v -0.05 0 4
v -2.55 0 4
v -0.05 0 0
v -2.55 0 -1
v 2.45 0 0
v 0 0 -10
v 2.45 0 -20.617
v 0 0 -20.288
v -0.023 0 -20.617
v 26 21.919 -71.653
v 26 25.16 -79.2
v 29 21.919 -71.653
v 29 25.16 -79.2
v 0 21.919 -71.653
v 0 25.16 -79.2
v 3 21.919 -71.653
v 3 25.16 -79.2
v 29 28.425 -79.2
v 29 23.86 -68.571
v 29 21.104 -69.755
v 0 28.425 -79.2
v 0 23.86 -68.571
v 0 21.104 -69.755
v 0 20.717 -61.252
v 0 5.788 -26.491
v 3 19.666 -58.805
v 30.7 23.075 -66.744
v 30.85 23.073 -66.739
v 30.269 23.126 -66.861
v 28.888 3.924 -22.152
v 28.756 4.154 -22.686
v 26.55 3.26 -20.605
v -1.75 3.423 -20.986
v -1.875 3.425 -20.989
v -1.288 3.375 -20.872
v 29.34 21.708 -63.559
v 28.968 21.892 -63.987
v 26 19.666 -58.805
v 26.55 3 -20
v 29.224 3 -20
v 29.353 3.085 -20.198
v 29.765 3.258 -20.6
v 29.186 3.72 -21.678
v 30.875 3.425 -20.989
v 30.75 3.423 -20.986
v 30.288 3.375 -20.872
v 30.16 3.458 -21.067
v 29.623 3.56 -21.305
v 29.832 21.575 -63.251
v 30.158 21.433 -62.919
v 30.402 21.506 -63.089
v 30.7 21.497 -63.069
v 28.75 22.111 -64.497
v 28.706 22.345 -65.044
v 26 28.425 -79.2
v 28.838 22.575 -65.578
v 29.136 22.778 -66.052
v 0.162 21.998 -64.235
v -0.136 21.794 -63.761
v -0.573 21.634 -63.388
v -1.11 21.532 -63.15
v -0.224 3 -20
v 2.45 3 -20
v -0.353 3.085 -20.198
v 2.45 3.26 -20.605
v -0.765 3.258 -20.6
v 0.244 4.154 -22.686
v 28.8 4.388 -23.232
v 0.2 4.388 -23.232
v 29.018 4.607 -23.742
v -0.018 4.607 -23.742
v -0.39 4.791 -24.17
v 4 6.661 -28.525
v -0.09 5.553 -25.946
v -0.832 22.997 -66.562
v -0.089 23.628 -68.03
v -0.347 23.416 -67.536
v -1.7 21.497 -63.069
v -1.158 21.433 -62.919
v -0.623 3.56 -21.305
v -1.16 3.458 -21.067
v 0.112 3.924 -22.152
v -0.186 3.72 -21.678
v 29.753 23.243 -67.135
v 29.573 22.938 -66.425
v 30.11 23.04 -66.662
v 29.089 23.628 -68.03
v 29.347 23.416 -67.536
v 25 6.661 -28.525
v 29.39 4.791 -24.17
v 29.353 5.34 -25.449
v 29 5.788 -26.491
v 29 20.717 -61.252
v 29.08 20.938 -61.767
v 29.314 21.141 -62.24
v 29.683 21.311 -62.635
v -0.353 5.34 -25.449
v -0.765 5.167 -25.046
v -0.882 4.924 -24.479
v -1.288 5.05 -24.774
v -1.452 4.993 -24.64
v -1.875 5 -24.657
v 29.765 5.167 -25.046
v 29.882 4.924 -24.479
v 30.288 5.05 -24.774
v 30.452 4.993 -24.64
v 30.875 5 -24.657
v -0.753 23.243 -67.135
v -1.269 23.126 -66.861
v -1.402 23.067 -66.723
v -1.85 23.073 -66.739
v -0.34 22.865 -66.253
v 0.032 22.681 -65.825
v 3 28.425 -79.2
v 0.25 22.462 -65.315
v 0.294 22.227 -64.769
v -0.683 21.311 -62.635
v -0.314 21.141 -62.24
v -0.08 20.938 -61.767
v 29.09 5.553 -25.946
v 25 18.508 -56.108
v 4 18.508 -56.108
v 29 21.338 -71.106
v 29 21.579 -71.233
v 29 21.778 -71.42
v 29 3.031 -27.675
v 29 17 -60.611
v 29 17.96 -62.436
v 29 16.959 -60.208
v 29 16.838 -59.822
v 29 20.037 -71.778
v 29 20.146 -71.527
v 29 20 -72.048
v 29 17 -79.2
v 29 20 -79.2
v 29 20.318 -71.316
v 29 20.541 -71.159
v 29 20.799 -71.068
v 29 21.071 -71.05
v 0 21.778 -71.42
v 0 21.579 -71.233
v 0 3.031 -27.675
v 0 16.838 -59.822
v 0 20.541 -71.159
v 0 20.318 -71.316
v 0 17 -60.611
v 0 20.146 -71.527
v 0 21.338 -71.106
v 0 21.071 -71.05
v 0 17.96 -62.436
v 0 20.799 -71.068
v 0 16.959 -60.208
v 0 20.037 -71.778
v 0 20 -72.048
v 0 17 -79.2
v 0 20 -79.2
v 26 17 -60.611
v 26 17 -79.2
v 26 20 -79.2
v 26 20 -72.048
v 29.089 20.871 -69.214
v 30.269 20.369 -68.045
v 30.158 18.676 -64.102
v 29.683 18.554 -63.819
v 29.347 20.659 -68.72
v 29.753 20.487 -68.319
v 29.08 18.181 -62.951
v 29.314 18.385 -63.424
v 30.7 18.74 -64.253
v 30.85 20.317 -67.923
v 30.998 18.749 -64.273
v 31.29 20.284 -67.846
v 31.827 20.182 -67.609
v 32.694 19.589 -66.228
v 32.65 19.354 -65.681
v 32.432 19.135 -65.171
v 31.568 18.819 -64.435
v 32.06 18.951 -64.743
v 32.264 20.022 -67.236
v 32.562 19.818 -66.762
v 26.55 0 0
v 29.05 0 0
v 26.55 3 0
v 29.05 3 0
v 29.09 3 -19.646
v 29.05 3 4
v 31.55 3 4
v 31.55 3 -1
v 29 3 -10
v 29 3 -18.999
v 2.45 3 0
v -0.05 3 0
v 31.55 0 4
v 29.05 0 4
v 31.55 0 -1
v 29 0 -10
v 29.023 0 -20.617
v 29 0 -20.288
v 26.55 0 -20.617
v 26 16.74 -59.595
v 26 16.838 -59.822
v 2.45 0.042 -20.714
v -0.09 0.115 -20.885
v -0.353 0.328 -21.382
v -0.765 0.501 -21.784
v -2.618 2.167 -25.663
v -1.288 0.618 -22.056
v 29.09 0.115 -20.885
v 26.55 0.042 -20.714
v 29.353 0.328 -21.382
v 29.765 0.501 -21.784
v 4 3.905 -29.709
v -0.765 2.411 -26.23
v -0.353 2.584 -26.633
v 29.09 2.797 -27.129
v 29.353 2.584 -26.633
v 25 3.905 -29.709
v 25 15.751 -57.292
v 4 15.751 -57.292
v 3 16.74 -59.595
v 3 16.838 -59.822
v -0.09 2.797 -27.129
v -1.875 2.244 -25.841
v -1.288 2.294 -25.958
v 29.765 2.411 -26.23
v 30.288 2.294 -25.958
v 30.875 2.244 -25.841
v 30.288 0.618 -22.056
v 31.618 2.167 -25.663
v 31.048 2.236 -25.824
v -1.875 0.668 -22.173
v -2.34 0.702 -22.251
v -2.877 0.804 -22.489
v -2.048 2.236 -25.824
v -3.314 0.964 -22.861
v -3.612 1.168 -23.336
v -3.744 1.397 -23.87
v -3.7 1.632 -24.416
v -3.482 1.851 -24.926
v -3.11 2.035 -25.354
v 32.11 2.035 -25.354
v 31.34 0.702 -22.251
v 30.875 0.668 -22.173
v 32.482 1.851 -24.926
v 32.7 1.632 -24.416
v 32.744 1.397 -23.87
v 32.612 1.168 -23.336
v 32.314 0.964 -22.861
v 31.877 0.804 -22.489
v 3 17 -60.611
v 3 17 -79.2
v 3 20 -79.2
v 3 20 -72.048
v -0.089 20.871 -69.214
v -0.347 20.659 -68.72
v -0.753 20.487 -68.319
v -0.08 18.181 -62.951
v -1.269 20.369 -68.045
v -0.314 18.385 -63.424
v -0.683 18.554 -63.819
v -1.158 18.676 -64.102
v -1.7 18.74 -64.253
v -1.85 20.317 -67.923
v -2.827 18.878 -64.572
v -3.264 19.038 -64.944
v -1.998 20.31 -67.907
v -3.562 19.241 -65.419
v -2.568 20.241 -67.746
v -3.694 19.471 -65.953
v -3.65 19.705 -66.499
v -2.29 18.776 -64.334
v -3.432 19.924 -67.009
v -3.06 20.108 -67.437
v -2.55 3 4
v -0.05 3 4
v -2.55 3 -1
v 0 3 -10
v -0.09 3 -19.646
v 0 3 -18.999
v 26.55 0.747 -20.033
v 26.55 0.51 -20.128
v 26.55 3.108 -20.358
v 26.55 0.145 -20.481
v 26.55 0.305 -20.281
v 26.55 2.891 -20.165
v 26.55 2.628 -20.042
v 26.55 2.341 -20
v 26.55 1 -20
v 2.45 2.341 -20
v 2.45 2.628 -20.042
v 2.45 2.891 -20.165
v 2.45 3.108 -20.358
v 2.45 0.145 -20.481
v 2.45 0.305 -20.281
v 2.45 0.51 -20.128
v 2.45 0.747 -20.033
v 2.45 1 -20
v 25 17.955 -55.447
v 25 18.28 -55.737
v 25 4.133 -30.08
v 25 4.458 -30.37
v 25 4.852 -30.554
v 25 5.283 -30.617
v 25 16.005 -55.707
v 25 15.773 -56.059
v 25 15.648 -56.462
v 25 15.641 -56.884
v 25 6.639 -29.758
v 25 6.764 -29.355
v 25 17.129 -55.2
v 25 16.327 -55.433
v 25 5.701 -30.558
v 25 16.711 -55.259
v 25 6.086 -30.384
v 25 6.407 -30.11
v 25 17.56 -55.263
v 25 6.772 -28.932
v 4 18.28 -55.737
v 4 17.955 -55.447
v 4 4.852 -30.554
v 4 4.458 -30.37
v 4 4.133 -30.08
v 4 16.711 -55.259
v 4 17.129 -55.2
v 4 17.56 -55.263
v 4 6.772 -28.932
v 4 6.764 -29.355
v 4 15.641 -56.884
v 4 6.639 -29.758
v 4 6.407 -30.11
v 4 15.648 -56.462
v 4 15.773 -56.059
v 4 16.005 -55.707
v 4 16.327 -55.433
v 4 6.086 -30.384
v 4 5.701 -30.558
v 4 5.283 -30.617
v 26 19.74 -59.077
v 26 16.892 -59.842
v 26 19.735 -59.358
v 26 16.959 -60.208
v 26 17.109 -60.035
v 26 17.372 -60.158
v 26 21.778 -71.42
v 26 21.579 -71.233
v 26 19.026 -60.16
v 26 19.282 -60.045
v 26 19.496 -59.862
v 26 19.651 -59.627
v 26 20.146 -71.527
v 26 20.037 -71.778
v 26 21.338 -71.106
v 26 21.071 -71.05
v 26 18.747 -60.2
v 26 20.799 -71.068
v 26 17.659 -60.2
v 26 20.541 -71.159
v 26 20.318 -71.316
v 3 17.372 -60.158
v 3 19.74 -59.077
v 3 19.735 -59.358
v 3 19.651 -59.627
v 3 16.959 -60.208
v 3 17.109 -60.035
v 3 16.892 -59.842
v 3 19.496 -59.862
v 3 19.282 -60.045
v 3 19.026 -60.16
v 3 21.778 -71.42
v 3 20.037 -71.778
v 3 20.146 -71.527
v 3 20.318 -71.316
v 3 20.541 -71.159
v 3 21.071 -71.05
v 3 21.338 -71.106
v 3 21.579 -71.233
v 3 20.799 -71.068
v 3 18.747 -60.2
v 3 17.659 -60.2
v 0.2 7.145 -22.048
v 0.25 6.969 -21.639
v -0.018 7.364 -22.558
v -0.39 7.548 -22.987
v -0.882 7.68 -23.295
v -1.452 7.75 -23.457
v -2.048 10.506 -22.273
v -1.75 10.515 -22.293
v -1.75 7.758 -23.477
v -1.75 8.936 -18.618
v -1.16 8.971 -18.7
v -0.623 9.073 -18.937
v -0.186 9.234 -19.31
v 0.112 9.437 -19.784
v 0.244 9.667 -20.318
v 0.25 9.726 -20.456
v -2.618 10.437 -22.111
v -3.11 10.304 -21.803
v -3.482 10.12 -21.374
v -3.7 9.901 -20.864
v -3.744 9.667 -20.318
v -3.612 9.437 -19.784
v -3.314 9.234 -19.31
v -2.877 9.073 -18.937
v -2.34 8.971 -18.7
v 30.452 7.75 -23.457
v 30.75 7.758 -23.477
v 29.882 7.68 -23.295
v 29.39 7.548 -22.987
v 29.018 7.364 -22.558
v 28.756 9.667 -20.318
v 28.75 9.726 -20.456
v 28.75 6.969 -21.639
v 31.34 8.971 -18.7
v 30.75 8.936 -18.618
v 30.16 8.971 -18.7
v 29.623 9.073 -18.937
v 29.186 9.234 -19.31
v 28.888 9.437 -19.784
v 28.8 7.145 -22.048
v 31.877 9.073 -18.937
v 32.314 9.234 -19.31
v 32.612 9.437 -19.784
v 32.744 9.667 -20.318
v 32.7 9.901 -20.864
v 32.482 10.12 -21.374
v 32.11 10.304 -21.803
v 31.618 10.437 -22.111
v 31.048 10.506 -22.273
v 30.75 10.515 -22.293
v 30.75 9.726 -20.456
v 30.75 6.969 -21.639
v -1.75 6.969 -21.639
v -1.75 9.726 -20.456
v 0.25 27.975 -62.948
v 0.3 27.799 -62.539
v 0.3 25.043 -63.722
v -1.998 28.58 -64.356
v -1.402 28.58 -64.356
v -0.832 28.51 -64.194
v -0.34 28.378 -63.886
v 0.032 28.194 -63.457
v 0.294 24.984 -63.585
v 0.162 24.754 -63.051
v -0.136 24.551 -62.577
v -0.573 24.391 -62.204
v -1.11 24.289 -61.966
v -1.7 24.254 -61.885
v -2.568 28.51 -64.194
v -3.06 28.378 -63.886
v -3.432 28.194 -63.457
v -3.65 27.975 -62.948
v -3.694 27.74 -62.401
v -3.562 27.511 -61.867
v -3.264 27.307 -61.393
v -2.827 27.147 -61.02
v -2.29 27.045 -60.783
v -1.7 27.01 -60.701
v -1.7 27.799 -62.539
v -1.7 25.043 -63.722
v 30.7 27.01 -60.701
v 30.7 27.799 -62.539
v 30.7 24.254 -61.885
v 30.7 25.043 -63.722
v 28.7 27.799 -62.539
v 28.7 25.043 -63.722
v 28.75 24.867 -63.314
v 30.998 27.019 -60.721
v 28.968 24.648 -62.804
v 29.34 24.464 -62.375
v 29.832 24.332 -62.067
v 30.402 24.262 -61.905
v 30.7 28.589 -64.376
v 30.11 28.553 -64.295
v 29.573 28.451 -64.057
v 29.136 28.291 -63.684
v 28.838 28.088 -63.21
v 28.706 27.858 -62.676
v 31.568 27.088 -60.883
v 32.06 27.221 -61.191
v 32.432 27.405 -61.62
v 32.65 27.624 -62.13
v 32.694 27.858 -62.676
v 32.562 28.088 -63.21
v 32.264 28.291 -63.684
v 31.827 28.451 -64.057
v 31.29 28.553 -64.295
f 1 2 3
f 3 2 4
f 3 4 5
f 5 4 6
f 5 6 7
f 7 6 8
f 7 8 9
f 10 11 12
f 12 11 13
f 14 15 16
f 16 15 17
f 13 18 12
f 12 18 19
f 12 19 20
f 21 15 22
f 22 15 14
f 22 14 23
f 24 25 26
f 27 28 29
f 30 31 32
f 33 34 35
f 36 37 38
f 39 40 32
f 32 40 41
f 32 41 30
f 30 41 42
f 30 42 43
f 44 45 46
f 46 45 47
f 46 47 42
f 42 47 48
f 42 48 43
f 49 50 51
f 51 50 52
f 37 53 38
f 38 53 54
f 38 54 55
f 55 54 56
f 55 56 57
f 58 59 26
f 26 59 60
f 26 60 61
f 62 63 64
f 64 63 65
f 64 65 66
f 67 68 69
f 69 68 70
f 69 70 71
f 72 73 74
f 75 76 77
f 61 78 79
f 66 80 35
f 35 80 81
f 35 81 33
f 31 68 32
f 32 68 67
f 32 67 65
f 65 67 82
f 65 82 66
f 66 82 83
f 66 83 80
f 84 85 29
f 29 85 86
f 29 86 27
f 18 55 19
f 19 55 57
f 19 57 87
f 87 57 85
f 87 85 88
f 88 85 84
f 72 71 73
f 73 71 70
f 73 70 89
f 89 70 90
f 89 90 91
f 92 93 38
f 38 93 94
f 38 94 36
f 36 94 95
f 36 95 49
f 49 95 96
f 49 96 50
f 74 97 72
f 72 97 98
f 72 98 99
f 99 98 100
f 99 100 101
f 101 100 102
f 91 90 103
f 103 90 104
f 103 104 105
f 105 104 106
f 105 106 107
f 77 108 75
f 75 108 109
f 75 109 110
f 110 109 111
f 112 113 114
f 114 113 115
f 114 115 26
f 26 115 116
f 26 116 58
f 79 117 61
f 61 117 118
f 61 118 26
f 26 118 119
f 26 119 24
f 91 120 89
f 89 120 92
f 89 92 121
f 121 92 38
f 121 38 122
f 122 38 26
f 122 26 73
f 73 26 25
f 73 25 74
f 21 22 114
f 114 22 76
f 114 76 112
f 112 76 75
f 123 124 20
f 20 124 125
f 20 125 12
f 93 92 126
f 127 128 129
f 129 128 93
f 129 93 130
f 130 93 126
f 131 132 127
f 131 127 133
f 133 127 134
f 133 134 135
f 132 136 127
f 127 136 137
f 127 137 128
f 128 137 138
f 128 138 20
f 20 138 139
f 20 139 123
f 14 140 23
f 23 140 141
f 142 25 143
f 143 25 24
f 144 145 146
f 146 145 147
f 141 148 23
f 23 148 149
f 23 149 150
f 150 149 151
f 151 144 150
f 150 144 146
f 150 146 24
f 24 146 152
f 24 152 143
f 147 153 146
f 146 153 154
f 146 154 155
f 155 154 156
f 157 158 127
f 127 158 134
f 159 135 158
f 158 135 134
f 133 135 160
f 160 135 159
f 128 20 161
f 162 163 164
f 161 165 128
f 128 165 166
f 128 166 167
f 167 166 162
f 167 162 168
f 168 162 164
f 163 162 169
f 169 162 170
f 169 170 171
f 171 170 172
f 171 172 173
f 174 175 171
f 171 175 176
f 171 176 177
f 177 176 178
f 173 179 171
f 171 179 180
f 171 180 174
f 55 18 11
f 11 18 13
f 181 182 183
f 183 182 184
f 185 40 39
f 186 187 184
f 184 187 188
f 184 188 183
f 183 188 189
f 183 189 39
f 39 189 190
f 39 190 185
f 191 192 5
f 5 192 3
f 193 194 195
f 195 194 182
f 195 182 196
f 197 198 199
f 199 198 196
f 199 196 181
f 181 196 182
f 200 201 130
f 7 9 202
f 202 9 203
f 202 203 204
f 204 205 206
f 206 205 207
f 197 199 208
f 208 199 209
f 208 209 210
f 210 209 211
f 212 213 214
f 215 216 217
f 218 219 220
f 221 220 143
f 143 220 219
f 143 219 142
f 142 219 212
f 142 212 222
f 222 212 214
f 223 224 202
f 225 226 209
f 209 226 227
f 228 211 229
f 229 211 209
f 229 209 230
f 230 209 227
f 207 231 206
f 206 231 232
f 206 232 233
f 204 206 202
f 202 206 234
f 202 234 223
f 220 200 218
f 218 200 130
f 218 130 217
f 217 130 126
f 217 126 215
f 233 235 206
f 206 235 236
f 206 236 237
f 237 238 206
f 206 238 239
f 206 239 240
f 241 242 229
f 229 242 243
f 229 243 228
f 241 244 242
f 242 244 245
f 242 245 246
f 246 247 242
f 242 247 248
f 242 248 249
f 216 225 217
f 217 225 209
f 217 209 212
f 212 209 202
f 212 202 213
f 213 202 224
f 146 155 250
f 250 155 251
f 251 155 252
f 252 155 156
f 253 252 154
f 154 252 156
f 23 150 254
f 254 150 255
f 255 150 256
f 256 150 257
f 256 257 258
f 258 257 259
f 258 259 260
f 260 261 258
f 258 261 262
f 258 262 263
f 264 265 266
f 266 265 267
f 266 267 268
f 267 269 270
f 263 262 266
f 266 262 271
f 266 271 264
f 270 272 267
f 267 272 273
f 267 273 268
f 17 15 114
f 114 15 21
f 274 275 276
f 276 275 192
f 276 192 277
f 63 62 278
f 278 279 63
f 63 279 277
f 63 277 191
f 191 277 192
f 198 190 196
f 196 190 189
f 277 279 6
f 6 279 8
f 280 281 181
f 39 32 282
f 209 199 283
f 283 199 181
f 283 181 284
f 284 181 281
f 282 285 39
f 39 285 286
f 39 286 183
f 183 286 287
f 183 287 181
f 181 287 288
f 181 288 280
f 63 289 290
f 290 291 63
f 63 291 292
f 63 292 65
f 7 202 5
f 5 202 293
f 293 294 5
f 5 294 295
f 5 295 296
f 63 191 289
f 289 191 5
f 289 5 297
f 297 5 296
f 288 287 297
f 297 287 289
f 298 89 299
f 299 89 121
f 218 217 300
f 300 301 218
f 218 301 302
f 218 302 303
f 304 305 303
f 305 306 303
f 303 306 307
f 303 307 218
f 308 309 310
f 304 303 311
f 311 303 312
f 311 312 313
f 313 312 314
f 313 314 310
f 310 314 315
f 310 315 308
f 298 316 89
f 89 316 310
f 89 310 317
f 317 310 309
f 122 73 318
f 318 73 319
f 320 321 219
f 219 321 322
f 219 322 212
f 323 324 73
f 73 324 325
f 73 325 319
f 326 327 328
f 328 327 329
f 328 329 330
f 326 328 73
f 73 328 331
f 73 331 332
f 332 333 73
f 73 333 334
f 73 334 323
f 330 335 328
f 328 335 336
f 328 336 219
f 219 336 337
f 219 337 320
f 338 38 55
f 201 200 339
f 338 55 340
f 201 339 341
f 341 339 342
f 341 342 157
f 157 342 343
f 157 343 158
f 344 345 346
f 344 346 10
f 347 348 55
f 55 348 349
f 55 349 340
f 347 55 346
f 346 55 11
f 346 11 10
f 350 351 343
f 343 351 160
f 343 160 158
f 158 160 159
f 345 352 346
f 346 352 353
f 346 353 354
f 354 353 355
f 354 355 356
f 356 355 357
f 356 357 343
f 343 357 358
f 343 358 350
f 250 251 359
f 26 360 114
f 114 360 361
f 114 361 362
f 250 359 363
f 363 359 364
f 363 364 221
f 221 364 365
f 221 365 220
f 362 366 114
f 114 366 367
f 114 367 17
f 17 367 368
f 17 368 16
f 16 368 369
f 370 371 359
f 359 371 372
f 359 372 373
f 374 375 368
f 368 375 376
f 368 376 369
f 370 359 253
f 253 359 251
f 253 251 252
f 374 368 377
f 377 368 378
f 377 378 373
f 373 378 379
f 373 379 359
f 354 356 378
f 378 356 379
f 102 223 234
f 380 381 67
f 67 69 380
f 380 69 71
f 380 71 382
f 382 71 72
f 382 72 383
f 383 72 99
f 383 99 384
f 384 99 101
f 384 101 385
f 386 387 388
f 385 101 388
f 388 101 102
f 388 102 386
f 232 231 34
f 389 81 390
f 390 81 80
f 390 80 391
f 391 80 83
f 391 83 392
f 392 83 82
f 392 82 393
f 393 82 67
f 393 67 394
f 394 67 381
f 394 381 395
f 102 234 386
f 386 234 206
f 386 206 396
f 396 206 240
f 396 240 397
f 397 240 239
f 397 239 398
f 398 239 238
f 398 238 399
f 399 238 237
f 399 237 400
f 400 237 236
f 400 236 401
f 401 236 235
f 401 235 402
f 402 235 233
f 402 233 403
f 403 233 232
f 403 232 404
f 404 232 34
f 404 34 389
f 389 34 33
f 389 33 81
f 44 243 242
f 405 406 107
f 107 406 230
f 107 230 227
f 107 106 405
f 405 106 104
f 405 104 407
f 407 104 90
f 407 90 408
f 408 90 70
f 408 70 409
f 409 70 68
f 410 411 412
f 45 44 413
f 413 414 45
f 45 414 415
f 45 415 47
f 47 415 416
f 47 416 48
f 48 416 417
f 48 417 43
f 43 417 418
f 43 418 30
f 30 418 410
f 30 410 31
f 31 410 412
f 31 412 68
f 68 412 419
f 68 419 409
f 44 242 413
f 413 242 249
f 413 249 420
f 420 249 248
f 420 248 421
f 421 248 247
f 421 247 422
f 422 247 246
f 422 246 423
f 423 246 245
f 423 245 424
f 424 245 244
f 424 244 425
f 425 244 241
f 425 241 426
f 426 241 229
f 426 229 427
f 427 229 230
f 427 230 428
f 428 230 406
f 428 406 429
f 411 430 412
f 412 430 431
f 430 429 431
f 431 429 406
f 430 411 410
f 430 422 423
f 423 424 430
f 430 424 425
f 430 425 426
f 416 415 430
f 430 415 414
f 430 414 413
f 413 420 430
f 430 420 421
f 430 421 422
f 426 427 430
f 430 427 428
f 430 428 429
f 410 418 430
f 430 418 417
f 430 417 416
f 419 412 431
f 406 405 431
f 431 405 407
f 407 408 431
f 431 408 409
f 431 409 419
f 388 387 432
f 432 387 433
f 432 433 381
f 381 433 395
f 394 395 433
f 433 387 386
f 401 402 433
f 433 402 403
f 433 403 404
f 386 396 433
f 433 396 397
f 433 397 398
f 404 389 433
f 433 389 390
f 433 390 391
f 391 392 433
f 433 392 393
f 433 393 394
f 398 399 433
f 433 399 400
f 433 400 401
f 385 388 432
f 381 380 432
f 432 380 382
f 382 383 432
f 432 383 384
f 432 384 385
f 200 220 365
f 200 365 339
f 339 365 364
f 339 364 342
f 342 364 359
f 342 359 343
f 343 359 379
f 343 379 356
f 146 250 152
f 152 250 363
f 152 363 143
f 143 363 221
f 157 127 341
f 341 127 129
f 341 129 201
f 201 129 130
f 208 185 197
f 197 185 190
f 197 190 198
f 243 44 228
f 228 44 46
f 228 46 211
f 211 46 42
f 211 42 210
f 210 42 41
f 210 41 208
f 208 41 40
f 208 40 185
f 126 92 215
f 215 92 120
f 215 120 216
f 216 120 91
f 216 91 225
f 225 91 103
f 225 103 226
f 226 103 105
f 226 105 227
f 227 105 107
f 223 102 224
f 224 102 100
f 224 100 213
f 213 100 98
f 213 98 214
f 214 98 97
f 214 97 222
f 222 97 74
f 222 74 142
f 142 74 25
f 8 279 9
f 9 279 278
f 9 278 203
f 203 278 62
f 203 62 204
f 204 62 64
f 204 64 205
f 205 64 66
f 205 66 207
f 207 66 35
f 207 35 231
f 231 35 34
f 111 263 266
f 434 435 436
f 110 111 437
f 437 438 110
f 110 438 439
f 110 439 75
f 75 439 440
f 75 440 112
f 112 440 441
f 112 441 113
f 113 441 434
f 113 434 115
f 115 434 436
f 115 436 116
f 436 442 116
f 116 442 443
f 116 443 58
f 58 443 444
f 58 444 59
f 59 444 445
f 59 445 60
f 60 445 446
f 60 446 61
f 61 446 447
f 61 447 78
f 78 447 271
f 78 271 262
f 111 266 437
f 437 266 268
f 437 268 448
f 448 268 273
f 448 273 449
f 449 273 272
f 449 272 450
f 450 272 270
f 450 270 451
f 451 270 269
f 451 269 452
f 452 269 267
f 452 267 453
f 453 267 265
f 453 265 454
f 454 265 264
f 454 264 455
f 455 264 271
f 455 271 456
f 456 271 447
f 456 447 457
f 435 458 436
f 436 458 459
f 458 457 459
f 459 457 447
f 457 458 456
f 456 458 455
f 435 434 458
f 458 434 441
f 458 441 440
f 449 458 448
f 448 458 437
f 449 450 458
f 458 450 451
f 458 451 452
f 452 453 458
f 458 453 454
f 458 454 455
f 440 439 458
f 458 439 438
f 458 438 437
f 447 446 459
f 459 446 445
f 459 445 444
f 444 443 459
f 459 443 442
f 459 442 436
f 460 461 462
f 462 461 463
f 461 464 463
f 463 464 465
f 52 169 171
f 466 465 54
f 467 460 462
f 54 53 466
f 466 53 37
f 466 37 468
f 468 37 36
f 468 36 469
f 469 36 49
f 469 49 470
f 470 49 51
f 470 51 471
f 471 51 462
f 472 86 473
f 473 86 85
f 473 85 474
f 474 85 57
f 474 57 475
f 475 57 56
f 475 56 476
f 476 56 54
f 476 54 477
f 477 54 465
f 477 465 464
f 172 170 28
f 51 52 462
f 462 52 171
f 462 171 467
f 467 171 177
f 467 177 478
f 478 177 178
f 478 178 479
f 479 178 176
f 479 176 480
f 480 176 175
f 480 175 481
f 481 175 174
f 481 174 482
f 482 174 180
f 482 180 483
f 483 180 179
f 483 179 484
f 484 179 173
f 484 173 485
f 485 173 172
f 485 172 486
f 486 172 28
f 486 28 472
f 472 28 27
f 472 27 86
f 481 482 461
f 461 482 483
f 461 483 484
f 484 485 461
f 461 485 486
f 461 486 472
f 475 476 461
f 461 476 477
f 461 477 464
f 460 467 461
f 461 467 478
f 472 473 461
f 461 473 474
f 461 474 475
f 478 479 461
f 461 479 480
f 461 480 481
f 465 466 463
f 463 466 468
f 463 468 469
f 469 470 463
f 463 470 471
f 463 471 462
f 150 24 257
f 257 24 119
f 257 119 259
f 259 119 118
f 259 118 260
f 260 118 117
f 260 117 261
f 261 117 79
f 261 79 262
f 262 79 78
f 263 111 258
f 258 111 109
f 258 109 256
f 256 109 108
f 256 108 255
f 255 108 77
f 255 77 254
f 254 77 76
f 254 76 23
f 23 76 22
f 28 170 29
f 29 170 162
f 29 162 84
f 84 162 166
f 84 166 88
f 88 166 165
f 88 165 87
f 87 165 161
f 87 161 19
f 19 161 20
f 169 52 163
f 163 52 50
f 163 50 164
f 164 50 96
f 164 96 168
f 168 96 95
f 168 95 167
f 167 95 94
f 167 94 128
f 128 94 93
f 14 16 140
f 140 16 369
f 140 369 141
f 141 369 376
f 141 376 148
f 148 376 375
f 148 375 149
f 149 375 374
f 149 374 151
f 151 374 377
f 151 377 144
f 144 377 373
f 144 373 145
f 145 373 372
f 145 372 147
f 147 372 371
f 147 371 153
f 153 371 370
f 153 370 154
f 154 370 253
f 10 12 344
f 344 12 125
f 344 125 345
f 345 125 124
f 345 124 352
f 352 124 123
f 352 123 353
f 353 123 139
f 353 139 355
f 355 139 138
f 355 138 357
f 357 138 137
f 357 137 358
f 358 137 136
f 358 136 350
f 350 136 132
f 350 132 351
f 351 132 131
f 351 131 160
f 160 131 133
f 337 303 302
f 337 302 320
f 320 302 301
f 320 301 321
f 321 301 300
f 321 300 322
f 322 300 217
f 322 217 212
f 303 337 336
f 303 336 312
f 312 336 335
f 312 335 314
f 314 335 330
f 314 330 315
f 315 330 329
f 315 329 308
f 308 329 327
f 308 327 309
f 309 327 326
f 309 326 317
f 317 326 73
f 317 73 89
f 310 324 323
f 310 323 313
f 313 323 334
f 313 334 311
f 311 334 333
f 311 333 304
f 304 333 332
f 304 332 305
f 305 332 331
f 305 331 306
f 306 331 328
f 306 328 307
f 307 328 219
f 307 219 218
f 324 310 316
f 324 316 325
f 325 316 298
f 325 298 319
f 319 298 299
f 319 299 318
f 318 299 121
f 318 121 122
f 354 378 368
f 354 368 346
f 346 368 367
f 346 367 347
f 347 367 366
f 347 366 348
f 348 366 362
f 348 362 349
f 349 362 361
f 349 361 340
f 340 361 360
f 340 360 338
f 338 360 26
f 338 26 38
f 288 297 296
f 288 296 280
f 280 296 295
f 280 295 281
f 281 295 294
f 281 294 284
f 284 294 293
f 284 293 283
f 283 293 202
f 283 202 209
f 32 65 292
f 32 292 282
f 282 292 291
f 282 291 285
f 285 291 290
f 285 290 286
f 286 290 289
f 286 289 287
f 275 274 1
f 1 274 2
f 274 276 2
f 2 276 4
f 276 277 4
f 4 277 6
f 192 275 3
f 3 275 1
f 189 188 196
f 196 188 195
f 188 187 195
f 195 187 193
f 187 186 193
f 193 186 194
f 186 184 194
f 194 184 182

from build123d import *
from build123d.topology import SkipClean

# Parameters (mm, degrees)
BOSS_EXTRUDE1_DEPTH   = 29
SKETCH2_W             = 24.1
SKETCH2_H             = 40
CUT_EXTRUDE1_DEPTH    = 28
SKETCH3_W             = 21
SKETCH3_H             = 24.583031318
CUT_EXTRUDE2_DEPTH    = 28
SKETCH4_W             = 23
SKETCH4_H             = 38
CUT_EXTRUDE3_DEPTH    = 87.03859599
BOSS_EXTRUDE2_DEPTH   = 6
BOSS_EXTRUDE2_2_DEPTH = 6
SKETCH7_R             = 2
BOSS_EXTRUDE3_DEPTH   = 3
SKETCH8_R             = 2
BOSS_EXTRUDE4_DEPTH   = 3
FILLET5_R             = 1
FILLET1_R             = 2
BOSS_EXTRUDE5_DEPTH   = 6
BOSS_EXTRUDE5_2_DEPTH = 6
SKETCH10_R            = 2
BOSS_EXTRUDE6_DEPTH   = 3
SKETCH11_R            = 2
BOSS_EXTRUDE7_DEPTH   = 3
FILLET2_R             = 2
FILLET3_R             = 1
FILLET4_R             = 1.5
FILLET6_R             = 1
FILLET7_R             = 1
BOSS_EXTRUDE8_DEPTH   = 3


# Some blends are built 0.0001 mm under size
with BuildPart() as part:
    # Sketch1 → Boss-Extrude1 (new body)
    with BuildSketch(Plane(origin=(0, 0, 0), x_dir=(0, 0, -1), z_dir=(1, 0, 0))):
        Polygon((0, 0), (20.616968682, 0), (60.2, 17), (79.2, 17), (79.2, 20), (67.185240821, 20), (79.2, 25.16006226), (79.2, 28.425036095), (20, 3), (0, 3), align=None)
    extrude(amount=BOSS_EXTRUDE1_DEPTH)

    # Sketch2 → Cut-Extrude1 (cut)
    with BuildSketch(Plane(origin=(0, 3, 0), x_dir=(1, 0, 0), z_dir=(0, 1, 0))):
        with Locations((14.5, 0)):
            Rectangle(SKETCH2_W, SKETCH2_H)
    extrude(amount=-CUT_EXTRUDE1_DEPTH, mode=Mode.SUBTRACT)

    # Sketch3 → Cut-Extrude2 (cut)
    with BuildSketch(Plane.XZ):
        with Locations((14.5, -42.908484341)):
            Rectangle(SKETCH3_W, SKETCH3_H)
    extrude(amount=-CUT_EXTRUDE2_DEPTH, mode=Mode.SUBTRACT)

    # Sketch4 → Cut-Extrude3 (cut, through all)
    with BuildSketch(Plane.XZ.offset(-17)):
        with Locations((14.5, -79.2)):
            Rectangle(SKETCH4_W, SKETCH4_H)
    extrude(amount=-CUT_EXTRUDE3_DEPTH, mode=Mode.SUBTRACT)



with BuildPart() as body_2:
    # Sketch6 → Boss-Extrude2 (new body)
    with BuildSketch(Plane(origin=(0, -4.719099202, -2.026744384), x_dir=(1, 0, 0), z_dir=(0, 0.9188435044080576, 0.3946221159630054))):
        with BuildLine():
            Line((-1.75, 22.633400601), (-1.75, 24.633400601))
            ThreePointArc((-1.75, 24.633400601), (-3.164213562, 21.219187039), (0.25, 22.633400601))
            Line((0.25, 22.633400601), (-1.75, 22.633400601))
        make_face()
    extrude(amount=BOSS_EXTRUDE2_DEPTH)


with BuildPart() as body_3:
    # Sketch6 → Boss-Extrude2 2 (new body)
    with BuildSketch(Plane(origin=(0, -4.719099202, -2.026744384), x_dir=(1, 0, 0), z_dir=(0, 0.9188435044080576, 0.3946221159630054))):
        with BuildLine():
            ThreePointArc((28.75, 22.633400601), (32.164213562, 21.219187039), (30.75, 24.633400601))
            Line((30.75, 24.633400601), (30.75, 22.633400601))
            Line((30.75, 22.633400601), (28.75, 22.633400601))
        make_face()
    extrude(amount=BOSS_EXTRUDE2_2_DEPTH)


    with SkipClean():  # the faces are left unmerged after this step: merging them gives an invalid solid
        add(body_2.part)  # Boss-Extrude3 merges body 2
        # Sketch7 → Boss-Extrude3 (add)
        with BuildSketch(Plane(origin=(0, -4.719099202, -2.026744384), x_dir=(1, 0, 0), z_dir=(0, -0.9188435044080577, -0.39462211596300556))):
            with Locations(Location((30.75, -22.633400601, 0), (0, 0, 270))):
                Circle(SKETCH7_R)
            with Locations(Location((-1.75, -22.633400601, 0), (0, 0, 270))):
                Circle(SKETCH7_R)
        extrude(amount=-BOSS_EXTRUDE3_DEPTH)


with BuildPart() as part_1:
    add(part.part)

    add(body_3.part)  # Boss-Extrude4 merges body 3
    # Sketch8 → Boss-Extrude4 (add)
    with BuildSketch(Plane(origin=(0, -4.719099202, -2.026744384), x_dir=(1, 0, 0), z_dir=(0, -0.9188435044080577, -0.39462211596300556))):
        with BuildLine():
            Line((30.75, -20.633400601), (-1.75, -20.633400601))
            ThreePointArc((-1.75, -20.633400601), (-0.335786438, -21.219187039), (0.25, -22.633400601))
            ThreePointArc((0.25, -22.633400601), (-0.335786438, -24.047614164), (-1.75, -24.633400601))
            Line((-1.75, -24.633400601), (30.75, -24.633400601))
            ThreePointArc((30.75, -24.633400601), (28.75, -22.633400601), (30.75, -20.633400601))
        make_face()
        with Locations(Location((30.75, -22.633400601, 0), (0, 0, 270))):
            Circle(SKETCH8_R)
        with Locations(Location((-1.75, -22.633400601, 0), (0, 0, 270))):
            Circle(SKETCH8_R)
    extrude(amount=BOSS_EXTRUDE4_DEPTH)

    # Fillet5
    fillet5_edges = [part_1.edges().sort_by_distance(p)[0] for p in [
        (14.5, 17, -60.2),
    ]]
    fillet(fillet5_edges, radius=FILLET5_R)

    # Fillet1
    # the kernel refuses this fillet: 2 mm, written as the material it adds along each edge
    with BuildSketch(Plane(origin=(0, 17, -60.2), x_dir=(0, -0.39462211596300395, 0.9188435044080584), z_dir=(1, 0, 0)), Plane(origin=(26, 17, -60.2), x_dir=(0, -0.39462211596300395, 0.9188435044080584), z_dir=(1, 0, 0))) as fillet1_piece_1:
        with BuildLine():
            CenterArc((FILLET1_R * 0.205656227335, FILLET1_R), FILLET1_R, 246.757591511, 23.242408489)
            Line((-FILLET1_R * 0.188965888628, FILLET1_R * 0.0811564955919), (0, 0))
            Line((0, 0), (FILLET1_R * 0.205656227335, 0))
        make_face()
    extrude(amount=3)
    with BuildSketch(Plane(origin=(29, 0.666766489, -22.169476849), x_dir=(0.9999978256192742, 0.000822932051561906, -0.0019161261864445022), z_dir=(0, 0.9188435044080576, 0.3946221159630056))) as fillet1_piece_2_section:
        with BuildLine():
            CenterArc((1.995841225, -1.996346258), FILLET1_R, 93.463838868, 86.416678302)
            Line((-0.004154427, -1.992175524), (-0.204153992, -1.99175845))
            Line((-0.204153992, -1.99175845), (-0.199999565, 0.000417073))
            Line((-0.199999565, 0.000417073), (0.000417073, 0.199999565))
            ThreePointArc((0.000417073, 0.199999565), (1.750413268, 0.196350172), (1.862920362, 0.199634626))
            Line((1.862920362, 0.199634626), (1.875004077, 0))
        make_face()
    fillet1_piece_2 = extrude(amount=7.980449639, mode=Mode.PRIVATE)
    fillet1_piece_2 = split(fillet1_piece_2, bisect_by=Plane(origin=(29, 0, -22.169476849), z_dir=(0, 1, 0)), keep=Keep.TOP, mode=Mode.PRIVATE)
    fillet1_piece_2 = split(fillet1_piece_2, bisect_by=Plane(origin=(29, 3, -22.169476849), z_dir=(0, -1, 0)), keep=Keep.TOP, mode=Mode.PRIVATE)
    add(fillet1_piece_2)
    with BuildSketch(Plane(origin=(29, -3.909487311, -24.134872424), x_dir=(0.9999978256192742, 0.000822932051561906, -0.0019161261864445022), z_dir=(0, 0.9188435044080576, 0.3946221159630056))) as fillet1_piece_3_section:
        with BuildLine():
            CenterArc((1.995841225, -1.996346258), FILLET1_R, 93.463838868, 86.416678302)
            Line((-0.004154427, -1.992175524), (-0.204153992, -1.99175845))
            Line((-0.204153992, -1.99175845), (-0.199999565, 0.000417073))
            Line((-0.199999565, 0.000417073), (0.000417073, 0.199999565))
            ThreePointArc((0.000417073, 0.199999565), (1.750413268, 0.196350172), (1.862920362, 0.199634626))
            Line((1.862920362, 0.199634626), (1.875004077, 0))
        make_face()
    fillet1_piece_3 = extrude(amount=7.980449639, mode=Mode.PRIVATE)
    fillet1_piece_3 = split(fillet1_piece_3, bisect_by=Plane(origin=(29, 3, -24.134872424), z_dir=(0, 1, 0)), keep=Keep.TOP, mode=Mode.PRIVATE)
    add(fillet1_piece_3)
    with BuildSketch(Plane(origin=(29, 5.001785466, -24.660984518), x_dir=(0, 0.3946221159630056, -0.9188435044080575), z_dir=(0, -0.9188435044080576, -0.3946221159630056))) as fillet1_piece_4:
        with BuildLine():
            CenterArc((1.992179856, 2), FILLET1_R, 183.583321698, 86.416678302)
            Line((-0.003910072, 1.875), (-0.203519065, 1.8625))
            ThreePointArc((-0.203519065, 1.8625), (-0.2, 1.75), (-0.2, 0))
            Line((-0.2, 0), (0, -0.2))
            Line((0, -0.2), (1.992179856, -0.2))
            Line((1.992179856, -0.2), (1.992179856, 0))
        make_face()
    extrude(amount=3)
    with BuildSketch(Plane(origin=(0, 5.001785466, -24.660984518), x_dir=(0, 0.3946221159630056, -0.9188435044080576), z_dir=(0, -0.9188435044080576, -0.3946221159630056))) as fillet1_piece_5:
        with BuildLine():
            CenterArc((1.992179856, -2), FILLET1_R, 90, 86.416678302)
            Line((-0.003910072, -1.875), (-0.203519065, -1.8625))
            ThreePointArc((-0.203519065, -1.8625), (-0.2, -1.75), (-0.2, 0))
            Line((-0.2, 0), (0, 0.2))
            Line((0, 0.2), (1.992179856, 0.2))
            Line((1.992179856, 0.2), (1.992179856, 0))
        make_face()
    extrude(amount=3)
    with BuildSketch(Plane(origin=(0, 0.666766489, -22.169476849), x_dir=(-0.9999978256192742, 0.0008229320515609999, -0.0019161261864423925), z_dir=(0, 0.9188435044080576, 0.3946221159630056))) as fillet1_piece_6_section:
        with BuildLine():
            CenterArc((1.995841225, 1.996346258), FILLET1_R, 180.119482831, 86.416678302)
            Line((-0.004154427, 1.992175524), (-0.204153992, 1.99175845))
            Line((-0.204153992, 1.99175845), (-0.199999565, -0.000417073))
            Line((-0.199999565, -0.000417073), (0.000417073, -0.199999565))
            ThreePointArc((0.000417073, -0.199999565), (1.750413268, -0.196350172), (1.862920362, -0.199634626))
            Line((1.862920362, -0.199634626), (1.875004077, 0))
        make_face()
    fillet1_piece_6 = extrude(amount=7.980449639, mode=Mode.PRIVATE)
    fillet1_piece_6 = split(fillet1_piece_6, bisect_by=Plane(origin=(0, 0, -22.169476849), z_dir=(0, 1, 0)), keep=Keep.TOP, mode=Mode.PRIVATE)
    fillet1_piece_6 = split(fillet1_piece_6, bisect_by=Plane(origin=(0, 3, -22.169476849), z_dir=(0, -1, 0)), keep=Keep.TOP, mode=Mode.PRIVATE)
    add(fillet1_piece_6)
    with BuildSketch(Plane(origin=(0, -3.909487311, -24.134872424), x_dir=(-0.9999978256192742, 0.0008229320515609999, -0.0019161261864423925), z_dir=(0, 0.9188435044080576, 0.3946221159630056))) as fillet1_piece_7_section:
        with BuildLine():
            CenterArc((1.995841225, 1.996346258), FILLET1_R, 180.119482831, 86.416678302)
            Line((-0.004154427, 1.992175524), (-0.204153992, 1.99175845))
            Line((-0.204153992, 1.99175845), (-0.199999565, -0.000417073))
            Line((-0.199999565, -0.000417073), (0.000417073, -0.199999565))
            ThreePointArc((0.000417073, -0.199999565), (1.750413268, -0.196350172), (1.862920362, -0.199634626))
            Line((1.862920362, -0.199634626), (1.875004077, 0))
        make_face()
    fillet1_piece_7 = extrude(amount=7.980449639, mode=Mode.PRIVATE)
    fillet1_piece_7 = split(fillet1_piece_7, bisect_by=Plane(origin=(0, 3, -24.134872424), z_dir=(0, 1, 0)), keep=Keep.TOP, mode=Mode.PRIVATE)
    add(fillet1_piece_7)



with BuildPart() as body_2_2:
    # Sketch9 → Boss-Extrude5 (new body)
    with BuildSketch(Plane(origin=(0, -4.719099202, -2.026744384), x_dir=(1, 0, 0), z_dir=(0, 0.9188435044080577, 0.39462211596300545))):
        with BuildLine():
            ThreePointArc((0.3, 68.433400601), (-3.114213562, 69.847614164), (-1.7, 66.433400601))
            Line((-1.7, 66.433400601), (-1.7, 68.433400601))
            Line((-1.7, 68.433400601), (0.3, 68.433400601))
        make_face()
    extrude(amount=BOSS_EXTRUDE5_DEPTH)



with BuildPart() as body_3_2:
    # Sketch9 → Boss-Extrude5 2 (new body)
    with BuildSketch(Plane(origin=(0, -4.719099202, -2.026744384), x_dir=(1, 0, 0), z_dir=(0, 0.9188435044080577, 0.39462211596300545))):
        with BuildLine():
            ThreePointArc((30.7, 66.433400601), (32.114213562, 69.847614164), (28.7, 68.433400601))
            Line((28.7, 68.433400601), (30.7, 68.433400601))
            Line((30.7, 68.433400601), (30.7, 66.433400601))
        make_face()
    extrude(amount=BOSS_EXTRUDE5_2_DEPTH)


with BuildPart() as body_2_2_1:
    with SkipClean():  # the faces are left unmerged after this step: merging them gives an invalid solid
        add(body_2_2.part)

        add(body_3_2.part)  # Boss-Extrude6 merges body 3 2
        # Sketch10 → Boss-Extrude6 (add)
        with BuildSketch(Plane(origin=(0, -4.719099202, -2.026744384), x_dir=(1, 0, 0), z_dir=(0, -0.9188435044080576, -0.3946221159630054))):
            with Locations(Location((30.7, -68.433400601, 0), (0, 0, 90))):
                Circle(SKETCH10_R)
            with Locations(Location((-1.7, -68.433400601, 0), (0, 0, 90))):
                Circle(SKETCH10_R)
        extrude(amount=-BOSS_EXTRUDE6_DEPTH)


with BuildPart() as part_2:
    add(part_1.part)

    add(body_2_2_1.part)  # Boss-Extrude7 merges body 2 2
    # Sketch11 → Boss-Extrude7 (add)
    with BuildSketch(Plane(origin=(0, -4.719099202, -2.026744384), x_dir=(1, 0, 0), z_dir=(0, -0.9188435044080576, -0.3946221159630054))):
        with BuildLine():
            ThreePointArc((0.3, -68.433400601), (-0.285786438, -69.847614164), (-1.7, -70.433400601))
            Line((-1.7, -70.433400601), (3, -70.433400601))
            Line((3, -70.433400601), (3, -66.433400601))
            Line((3, -66.433400601), (-1.7, -66.433400601))
            ThreePointArc((-1.7, -66.433400601), (-0.285786438, -67.019187039), (0.3, -68.433400601))
        make_face()
        with Locations(Location((-1.7, -68.433400601, 0), (0, 0, 90))):
            Circle(SKETCH11_R)
        with BuildLine():
            Line((26, -66.433400601), (26, -70.433400601))
            Line((26, -70.433400601), (30.7, -70.433400601))
            ThreePointArc((30.7, -70.433400601), (28.7, -68.433400601), (30.7, -66.433400601))
            Line((30.7, -66.433400601), (26, -66.433400601))
        make_face()
        with Locations(Location((30.7, -68.433400601, 0), (0, 0, 90))):
            Circle(SKETCH11_R)
    extrude(amount=BOSS_EXTRUDE7_DEPTH)

    # Fillet2
    # the kernel refuses this fillet: 2 mm, written as the material it adds along each edge
    with BuildSketch(Plane(origin=(0, 21.496989914, -63.068643003), x_dir=(0, -0.3946221159630054, 0.9188435044080576), z_dir=(0, -0.9188435044080577, -0.39462211596300545)), Plane(origin=(29, 18.740459401, -64.252509351), x_dir=(0, -0.39462211596300545, 0.9188435044080577), z_dir=(0, 0.9188435044080577, 0.39462211596300545))) as fillet2_piece_1:
        with BuildLine():
            CenterArc((1.977371993, 2), FILLET2_R, 188.626926559, 81.373073441)
            Line((0, 1.7), (0, 0))
            Line((0, 0), (1.977371993, 0))
        make_face()
    extrude(amount=3)
    with BuildSketch(Plane(origin=(0, 20.318947864, -67.927883368), x_dir=(-0.9999953645423342, -0.0012015510438305793, 0.0027977077998891206), z_dir=(0, 0.9188435044080577, 0.39462211596300545)), Plane(origin=(29, 23.075478378, -66.74401702), x_dir=(0.9999953645423341, -0.001201551043837046, 0.0027977077999041767), z_dir=(0, -0.9188435044080577, -0.39462211596300545))) as fillet2_piece_2:
        with BuildLine():
            CenterArc((1.993935403, -1.994814545), FILLET2_R, 94.126767029, 85.698777695)
            Line((-0.006055326, -1.988724916), (-0.206054399, -1.988115953))
            Line((-0.206054399, -1.988115953), (-0.199999073, 0.000608963))
            Line((-0.199999073, 0.000608963), (0.000608963, 0.199999073))
            ThreePointArc((0.000608963, 0.199999073), (1.700601083, 0.194822889), (1.835615893, 0.199481454))
            Line((1.835615893, 0.199481454), (1.850008576, 0))
        make_face()
    extrude(amount=3)

    # Fillet3
    # the kernel refuses this fillet: 1 mm, written as the material it adds along each edge
    with BuildSketch(Plane(origin=(26, 20, -67.185240821), x_dir=(0, 0, -1), z_dir=(1, 0, 0))) as fillet3_piece_1:
        with BuildLine():
            CenterArc((FILLET3_R * 4.86248344122, FILLET3_R), FILLET3_R, 113.242408489, 156.757591511)
            Line((FILLET3_R * 4.46786132525, FILLET3_R * 1.91884350441), (FILLET3_R * 4.45996888293, FILLET3_R * 1.9372203745))
            Line((FILLET3_R * 4.45996888293, FILLET3_R * 1.9372203745), (-FILLET3_R * 0.00789244231926, FILLET3_R * 0.0183768700882))
            Line((-FILLET3_R * 0.00789244231926, FILLET3_R * 0.0183768700882), (0, -FILLET3_R * 0.02))
            Line((0, -FILLET3_R * 0.02), (FILLET3_R * 4.86248344122, -FILLET3_R * 0.02))
            Line((FILLET3_R * 4.86248344122, -FILLET3_R * 0.02), (FILLET3_R * 4.86248344122, 0))
        make_face()
    extrude(amount=3)
    with BuildSketch(Plane(origin=(0, 20, -67.185240821), x_dir=(0, 0.39462211596300517, -0.9188435044080577), z_dir=(1, 0, 0))) as fillet3_piece_2:
        with BuildLine():
            CenterArc((FILLET3_R * 4.86248344122, -FILLET3_R), FILLET3_R, 90, 156.757591511)
            Line((FILLET3_R * 4.46786132525, -FILLET3_R * 1.91884350441), (FILLET3_R * 4.45996888293, -FILLET3_R * 1.9372203745))
            Line((FILLET3_R * 4.45996888293, -FILLET3_R * 1.9372203745), (-FILLET3_R * 0.00789244231926, -FILLET3_R * 0.0183768700882))
            Line((-FILLET3_R * 0.00789244231926, -FILLET3_R * 0.0183768700882), (0, FILLET3_R * 0.02))
            Line((0, FILLET3_R * 0.02), (FILLET3_R * 4.86248344122, FILLET3_R * 0.02))
            Line((FILLET3_R * 4.86248344122, FILLET3_R * 0.02), (FILLET3_R * 4.86248344122, 0))
        make_face()
    extrude(amount=3)

    # Fillet4
    fillet4_edges = [part_2.edges().sort_by_distance(p)[0] for p in [
        (14.5, 7.559743445, -30.616968682),
        (14.5, 18.117589029, -55.2),
        (14.5, 14.852615195, -55.2),
        (14.5, 4.294769611, -30.616968682),
    ]]
    fillet(fillet4_edges, radius=FILLET4_R - 0.0001)  # a hair under: the kernel refuses the full size

    # Fillet6
    fillet6_edges = [part_2.edges().sort_by_distance(p)[0] for p in [
        (14.5, 20.264973835, -60.2),
    ]]
    fillet(fillet6_edges, radius=FILLET6_R)

    # Fillet7
    # the kernel refuses this fillet: 1 mm, written as the material it takes off along each edge
    with BuildSketch(Plane(origin=(26.55, 3, -20), x_dir=(0, 0.39462211596391505, -0.918843504407667), z_dir=(-1, 0, 0))) as fillet7_piece_1:
        with BuildLine():
            CenterArc((FILLET7_R * 0.658847650478, FILLET7_R), FILLET7_R, 203.242408489, 66.757591511)
            Line((-FILLET7_R * 0.25999585393, FILLET7_R * 0.605377884037), (0, 0))
            Line((0, 0), (FILLET7_R * 0.658847650479, 0))
        make_face()
    extrude(amount=24.1, mode=Mode.SUBTRACT)
    with BuildSketch(Plane(origin=(26.55, 0, -20), x_dir=(0, 0, -1), z_dir=(-1, 0, 0))) as fillet7_piece_2:
        with BuildLine():
            CenterArc((FILLET7_R, -FILLET7_R), FILLET7_R, 90, 90)
            Line((0, -FILLET7_R), (0, 0))
            Line((0, 0), (FILLET7_R, 0))
        make_face()
    extrude(amount=24.1, mode=Mode.SUBTRACT)

    # Sketch12 → Boss-Extrude8 (add)
    with BuildSketch(Plane(origin=(0, 3, 0), x_dir=(1, 0, 0), z_dir=(0, 1, 0))):
        Polygon((0, 0), (-0.05, 0), (-0.05, -4), (-2.55, -4), (-2.55, 1), (0, 10), align=None)
        Polygon((29, 10), (29, 0), (29.05, 0), (29.05, -4), (31.55, -4), (31.55, 1), align=None)
    extrude(amount=-BOSS_EXTRUDE8_DEPTH)


solid = part_2.part
